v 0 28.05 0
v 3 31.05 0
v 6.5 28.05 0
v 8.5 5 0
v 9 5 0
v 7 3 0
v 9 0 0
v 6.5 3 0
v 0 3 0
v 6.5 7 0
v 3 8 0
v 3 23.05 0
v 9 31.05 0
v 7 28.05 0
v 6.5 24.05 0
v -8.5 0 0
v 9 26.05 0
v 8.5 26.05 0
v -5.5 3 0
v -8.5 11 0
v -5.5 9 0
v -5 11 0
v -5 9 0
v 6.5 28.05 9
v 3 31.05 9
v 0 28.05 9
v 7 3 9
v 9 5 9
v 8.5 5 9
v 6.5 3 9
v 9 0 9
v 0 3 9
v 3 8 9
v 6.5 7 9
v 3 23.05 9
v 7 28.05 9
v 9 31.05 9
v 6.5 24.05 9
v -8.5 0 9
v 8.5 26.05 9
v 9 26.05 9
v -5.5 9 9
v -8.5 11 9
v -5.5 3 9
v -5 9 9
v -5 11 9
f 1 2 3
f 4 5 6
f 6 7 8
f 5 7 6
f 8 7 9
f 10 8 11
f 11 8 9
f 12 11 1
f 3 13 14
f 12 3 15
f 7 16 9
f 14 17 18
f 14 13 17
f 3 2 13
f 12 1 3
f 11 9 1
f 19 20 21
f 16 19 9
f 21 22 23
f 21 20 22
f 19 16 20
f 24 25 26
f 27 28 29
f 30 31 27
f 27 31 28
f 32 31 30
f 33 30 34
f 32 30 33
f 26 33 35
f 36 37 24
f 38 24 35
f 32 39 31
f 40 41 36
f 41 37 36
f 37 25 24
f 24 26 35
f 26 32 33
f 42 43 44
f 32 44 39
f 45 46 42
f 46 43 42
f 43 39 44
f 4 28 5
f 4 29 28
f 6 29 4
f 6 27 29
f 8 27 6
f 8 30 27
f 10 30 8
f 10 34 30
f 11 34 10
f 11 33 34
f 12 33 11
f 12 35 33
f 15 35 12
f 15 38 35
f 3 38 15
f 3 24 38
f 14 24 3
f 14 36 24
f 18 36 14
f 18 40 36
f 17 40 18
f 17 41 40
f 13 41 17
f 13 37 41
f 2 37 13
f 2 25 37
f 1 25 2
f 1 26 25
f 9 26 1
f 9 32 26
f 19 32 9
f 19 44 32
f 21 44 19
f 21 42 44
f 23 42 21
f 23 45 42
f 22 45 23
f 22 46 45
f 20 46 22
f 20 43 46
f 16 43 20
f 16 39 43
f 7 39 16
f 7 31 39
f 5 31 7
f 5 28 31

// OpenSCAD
clip();

module clip(clipThick=9, pincerWidth=21.05, notchWidth=5) {
   linear_extrude(height=clipThick)
      shape(pincerWidth=pincerWidth, notchWidth=notchWidth);
}

module shape(pincerWidth = 21.05, notchWidth = 4.4, spineThick=3) {
   echo("pincerWidth = ", pincerWidth);
   polygon(points=[[-notchWidth-3.5,0],
                   [spineThick+6,0],
                   [spineThick+6,5],
                   [spineThick+5.5,5], // bottom right clip corner
                   [spineThick+4,3],
                   [spineThick+3.5,3],
                   [spineThick+3.5,7],
                   [spineThick,8],
                   [spineThick,pincerWidth+2],
                   [spineThick+3.5,pincerWidth+3],
                   [spineThick+3.5,pincerWidth+7],
                   [spineThick+4,pincerWidth+7],
                   [spineThick+5.5,pincerWidth+5],
                   [spineThick+6,pincerWidth+5],
                   [spineThick+6,pincerWidth+10],
                   [3,pincerWidth+10],
                   [0,pincerWidth+7],
                   [0,3],
                   [-notchWidth-0.5,3],
                   [-notchWidth-0.5,9],
                   [-notchWidth,9], // LHS hook
                   [-notchWidth,11],
                   [-notchWidth-3.5,11]]);
}
              
